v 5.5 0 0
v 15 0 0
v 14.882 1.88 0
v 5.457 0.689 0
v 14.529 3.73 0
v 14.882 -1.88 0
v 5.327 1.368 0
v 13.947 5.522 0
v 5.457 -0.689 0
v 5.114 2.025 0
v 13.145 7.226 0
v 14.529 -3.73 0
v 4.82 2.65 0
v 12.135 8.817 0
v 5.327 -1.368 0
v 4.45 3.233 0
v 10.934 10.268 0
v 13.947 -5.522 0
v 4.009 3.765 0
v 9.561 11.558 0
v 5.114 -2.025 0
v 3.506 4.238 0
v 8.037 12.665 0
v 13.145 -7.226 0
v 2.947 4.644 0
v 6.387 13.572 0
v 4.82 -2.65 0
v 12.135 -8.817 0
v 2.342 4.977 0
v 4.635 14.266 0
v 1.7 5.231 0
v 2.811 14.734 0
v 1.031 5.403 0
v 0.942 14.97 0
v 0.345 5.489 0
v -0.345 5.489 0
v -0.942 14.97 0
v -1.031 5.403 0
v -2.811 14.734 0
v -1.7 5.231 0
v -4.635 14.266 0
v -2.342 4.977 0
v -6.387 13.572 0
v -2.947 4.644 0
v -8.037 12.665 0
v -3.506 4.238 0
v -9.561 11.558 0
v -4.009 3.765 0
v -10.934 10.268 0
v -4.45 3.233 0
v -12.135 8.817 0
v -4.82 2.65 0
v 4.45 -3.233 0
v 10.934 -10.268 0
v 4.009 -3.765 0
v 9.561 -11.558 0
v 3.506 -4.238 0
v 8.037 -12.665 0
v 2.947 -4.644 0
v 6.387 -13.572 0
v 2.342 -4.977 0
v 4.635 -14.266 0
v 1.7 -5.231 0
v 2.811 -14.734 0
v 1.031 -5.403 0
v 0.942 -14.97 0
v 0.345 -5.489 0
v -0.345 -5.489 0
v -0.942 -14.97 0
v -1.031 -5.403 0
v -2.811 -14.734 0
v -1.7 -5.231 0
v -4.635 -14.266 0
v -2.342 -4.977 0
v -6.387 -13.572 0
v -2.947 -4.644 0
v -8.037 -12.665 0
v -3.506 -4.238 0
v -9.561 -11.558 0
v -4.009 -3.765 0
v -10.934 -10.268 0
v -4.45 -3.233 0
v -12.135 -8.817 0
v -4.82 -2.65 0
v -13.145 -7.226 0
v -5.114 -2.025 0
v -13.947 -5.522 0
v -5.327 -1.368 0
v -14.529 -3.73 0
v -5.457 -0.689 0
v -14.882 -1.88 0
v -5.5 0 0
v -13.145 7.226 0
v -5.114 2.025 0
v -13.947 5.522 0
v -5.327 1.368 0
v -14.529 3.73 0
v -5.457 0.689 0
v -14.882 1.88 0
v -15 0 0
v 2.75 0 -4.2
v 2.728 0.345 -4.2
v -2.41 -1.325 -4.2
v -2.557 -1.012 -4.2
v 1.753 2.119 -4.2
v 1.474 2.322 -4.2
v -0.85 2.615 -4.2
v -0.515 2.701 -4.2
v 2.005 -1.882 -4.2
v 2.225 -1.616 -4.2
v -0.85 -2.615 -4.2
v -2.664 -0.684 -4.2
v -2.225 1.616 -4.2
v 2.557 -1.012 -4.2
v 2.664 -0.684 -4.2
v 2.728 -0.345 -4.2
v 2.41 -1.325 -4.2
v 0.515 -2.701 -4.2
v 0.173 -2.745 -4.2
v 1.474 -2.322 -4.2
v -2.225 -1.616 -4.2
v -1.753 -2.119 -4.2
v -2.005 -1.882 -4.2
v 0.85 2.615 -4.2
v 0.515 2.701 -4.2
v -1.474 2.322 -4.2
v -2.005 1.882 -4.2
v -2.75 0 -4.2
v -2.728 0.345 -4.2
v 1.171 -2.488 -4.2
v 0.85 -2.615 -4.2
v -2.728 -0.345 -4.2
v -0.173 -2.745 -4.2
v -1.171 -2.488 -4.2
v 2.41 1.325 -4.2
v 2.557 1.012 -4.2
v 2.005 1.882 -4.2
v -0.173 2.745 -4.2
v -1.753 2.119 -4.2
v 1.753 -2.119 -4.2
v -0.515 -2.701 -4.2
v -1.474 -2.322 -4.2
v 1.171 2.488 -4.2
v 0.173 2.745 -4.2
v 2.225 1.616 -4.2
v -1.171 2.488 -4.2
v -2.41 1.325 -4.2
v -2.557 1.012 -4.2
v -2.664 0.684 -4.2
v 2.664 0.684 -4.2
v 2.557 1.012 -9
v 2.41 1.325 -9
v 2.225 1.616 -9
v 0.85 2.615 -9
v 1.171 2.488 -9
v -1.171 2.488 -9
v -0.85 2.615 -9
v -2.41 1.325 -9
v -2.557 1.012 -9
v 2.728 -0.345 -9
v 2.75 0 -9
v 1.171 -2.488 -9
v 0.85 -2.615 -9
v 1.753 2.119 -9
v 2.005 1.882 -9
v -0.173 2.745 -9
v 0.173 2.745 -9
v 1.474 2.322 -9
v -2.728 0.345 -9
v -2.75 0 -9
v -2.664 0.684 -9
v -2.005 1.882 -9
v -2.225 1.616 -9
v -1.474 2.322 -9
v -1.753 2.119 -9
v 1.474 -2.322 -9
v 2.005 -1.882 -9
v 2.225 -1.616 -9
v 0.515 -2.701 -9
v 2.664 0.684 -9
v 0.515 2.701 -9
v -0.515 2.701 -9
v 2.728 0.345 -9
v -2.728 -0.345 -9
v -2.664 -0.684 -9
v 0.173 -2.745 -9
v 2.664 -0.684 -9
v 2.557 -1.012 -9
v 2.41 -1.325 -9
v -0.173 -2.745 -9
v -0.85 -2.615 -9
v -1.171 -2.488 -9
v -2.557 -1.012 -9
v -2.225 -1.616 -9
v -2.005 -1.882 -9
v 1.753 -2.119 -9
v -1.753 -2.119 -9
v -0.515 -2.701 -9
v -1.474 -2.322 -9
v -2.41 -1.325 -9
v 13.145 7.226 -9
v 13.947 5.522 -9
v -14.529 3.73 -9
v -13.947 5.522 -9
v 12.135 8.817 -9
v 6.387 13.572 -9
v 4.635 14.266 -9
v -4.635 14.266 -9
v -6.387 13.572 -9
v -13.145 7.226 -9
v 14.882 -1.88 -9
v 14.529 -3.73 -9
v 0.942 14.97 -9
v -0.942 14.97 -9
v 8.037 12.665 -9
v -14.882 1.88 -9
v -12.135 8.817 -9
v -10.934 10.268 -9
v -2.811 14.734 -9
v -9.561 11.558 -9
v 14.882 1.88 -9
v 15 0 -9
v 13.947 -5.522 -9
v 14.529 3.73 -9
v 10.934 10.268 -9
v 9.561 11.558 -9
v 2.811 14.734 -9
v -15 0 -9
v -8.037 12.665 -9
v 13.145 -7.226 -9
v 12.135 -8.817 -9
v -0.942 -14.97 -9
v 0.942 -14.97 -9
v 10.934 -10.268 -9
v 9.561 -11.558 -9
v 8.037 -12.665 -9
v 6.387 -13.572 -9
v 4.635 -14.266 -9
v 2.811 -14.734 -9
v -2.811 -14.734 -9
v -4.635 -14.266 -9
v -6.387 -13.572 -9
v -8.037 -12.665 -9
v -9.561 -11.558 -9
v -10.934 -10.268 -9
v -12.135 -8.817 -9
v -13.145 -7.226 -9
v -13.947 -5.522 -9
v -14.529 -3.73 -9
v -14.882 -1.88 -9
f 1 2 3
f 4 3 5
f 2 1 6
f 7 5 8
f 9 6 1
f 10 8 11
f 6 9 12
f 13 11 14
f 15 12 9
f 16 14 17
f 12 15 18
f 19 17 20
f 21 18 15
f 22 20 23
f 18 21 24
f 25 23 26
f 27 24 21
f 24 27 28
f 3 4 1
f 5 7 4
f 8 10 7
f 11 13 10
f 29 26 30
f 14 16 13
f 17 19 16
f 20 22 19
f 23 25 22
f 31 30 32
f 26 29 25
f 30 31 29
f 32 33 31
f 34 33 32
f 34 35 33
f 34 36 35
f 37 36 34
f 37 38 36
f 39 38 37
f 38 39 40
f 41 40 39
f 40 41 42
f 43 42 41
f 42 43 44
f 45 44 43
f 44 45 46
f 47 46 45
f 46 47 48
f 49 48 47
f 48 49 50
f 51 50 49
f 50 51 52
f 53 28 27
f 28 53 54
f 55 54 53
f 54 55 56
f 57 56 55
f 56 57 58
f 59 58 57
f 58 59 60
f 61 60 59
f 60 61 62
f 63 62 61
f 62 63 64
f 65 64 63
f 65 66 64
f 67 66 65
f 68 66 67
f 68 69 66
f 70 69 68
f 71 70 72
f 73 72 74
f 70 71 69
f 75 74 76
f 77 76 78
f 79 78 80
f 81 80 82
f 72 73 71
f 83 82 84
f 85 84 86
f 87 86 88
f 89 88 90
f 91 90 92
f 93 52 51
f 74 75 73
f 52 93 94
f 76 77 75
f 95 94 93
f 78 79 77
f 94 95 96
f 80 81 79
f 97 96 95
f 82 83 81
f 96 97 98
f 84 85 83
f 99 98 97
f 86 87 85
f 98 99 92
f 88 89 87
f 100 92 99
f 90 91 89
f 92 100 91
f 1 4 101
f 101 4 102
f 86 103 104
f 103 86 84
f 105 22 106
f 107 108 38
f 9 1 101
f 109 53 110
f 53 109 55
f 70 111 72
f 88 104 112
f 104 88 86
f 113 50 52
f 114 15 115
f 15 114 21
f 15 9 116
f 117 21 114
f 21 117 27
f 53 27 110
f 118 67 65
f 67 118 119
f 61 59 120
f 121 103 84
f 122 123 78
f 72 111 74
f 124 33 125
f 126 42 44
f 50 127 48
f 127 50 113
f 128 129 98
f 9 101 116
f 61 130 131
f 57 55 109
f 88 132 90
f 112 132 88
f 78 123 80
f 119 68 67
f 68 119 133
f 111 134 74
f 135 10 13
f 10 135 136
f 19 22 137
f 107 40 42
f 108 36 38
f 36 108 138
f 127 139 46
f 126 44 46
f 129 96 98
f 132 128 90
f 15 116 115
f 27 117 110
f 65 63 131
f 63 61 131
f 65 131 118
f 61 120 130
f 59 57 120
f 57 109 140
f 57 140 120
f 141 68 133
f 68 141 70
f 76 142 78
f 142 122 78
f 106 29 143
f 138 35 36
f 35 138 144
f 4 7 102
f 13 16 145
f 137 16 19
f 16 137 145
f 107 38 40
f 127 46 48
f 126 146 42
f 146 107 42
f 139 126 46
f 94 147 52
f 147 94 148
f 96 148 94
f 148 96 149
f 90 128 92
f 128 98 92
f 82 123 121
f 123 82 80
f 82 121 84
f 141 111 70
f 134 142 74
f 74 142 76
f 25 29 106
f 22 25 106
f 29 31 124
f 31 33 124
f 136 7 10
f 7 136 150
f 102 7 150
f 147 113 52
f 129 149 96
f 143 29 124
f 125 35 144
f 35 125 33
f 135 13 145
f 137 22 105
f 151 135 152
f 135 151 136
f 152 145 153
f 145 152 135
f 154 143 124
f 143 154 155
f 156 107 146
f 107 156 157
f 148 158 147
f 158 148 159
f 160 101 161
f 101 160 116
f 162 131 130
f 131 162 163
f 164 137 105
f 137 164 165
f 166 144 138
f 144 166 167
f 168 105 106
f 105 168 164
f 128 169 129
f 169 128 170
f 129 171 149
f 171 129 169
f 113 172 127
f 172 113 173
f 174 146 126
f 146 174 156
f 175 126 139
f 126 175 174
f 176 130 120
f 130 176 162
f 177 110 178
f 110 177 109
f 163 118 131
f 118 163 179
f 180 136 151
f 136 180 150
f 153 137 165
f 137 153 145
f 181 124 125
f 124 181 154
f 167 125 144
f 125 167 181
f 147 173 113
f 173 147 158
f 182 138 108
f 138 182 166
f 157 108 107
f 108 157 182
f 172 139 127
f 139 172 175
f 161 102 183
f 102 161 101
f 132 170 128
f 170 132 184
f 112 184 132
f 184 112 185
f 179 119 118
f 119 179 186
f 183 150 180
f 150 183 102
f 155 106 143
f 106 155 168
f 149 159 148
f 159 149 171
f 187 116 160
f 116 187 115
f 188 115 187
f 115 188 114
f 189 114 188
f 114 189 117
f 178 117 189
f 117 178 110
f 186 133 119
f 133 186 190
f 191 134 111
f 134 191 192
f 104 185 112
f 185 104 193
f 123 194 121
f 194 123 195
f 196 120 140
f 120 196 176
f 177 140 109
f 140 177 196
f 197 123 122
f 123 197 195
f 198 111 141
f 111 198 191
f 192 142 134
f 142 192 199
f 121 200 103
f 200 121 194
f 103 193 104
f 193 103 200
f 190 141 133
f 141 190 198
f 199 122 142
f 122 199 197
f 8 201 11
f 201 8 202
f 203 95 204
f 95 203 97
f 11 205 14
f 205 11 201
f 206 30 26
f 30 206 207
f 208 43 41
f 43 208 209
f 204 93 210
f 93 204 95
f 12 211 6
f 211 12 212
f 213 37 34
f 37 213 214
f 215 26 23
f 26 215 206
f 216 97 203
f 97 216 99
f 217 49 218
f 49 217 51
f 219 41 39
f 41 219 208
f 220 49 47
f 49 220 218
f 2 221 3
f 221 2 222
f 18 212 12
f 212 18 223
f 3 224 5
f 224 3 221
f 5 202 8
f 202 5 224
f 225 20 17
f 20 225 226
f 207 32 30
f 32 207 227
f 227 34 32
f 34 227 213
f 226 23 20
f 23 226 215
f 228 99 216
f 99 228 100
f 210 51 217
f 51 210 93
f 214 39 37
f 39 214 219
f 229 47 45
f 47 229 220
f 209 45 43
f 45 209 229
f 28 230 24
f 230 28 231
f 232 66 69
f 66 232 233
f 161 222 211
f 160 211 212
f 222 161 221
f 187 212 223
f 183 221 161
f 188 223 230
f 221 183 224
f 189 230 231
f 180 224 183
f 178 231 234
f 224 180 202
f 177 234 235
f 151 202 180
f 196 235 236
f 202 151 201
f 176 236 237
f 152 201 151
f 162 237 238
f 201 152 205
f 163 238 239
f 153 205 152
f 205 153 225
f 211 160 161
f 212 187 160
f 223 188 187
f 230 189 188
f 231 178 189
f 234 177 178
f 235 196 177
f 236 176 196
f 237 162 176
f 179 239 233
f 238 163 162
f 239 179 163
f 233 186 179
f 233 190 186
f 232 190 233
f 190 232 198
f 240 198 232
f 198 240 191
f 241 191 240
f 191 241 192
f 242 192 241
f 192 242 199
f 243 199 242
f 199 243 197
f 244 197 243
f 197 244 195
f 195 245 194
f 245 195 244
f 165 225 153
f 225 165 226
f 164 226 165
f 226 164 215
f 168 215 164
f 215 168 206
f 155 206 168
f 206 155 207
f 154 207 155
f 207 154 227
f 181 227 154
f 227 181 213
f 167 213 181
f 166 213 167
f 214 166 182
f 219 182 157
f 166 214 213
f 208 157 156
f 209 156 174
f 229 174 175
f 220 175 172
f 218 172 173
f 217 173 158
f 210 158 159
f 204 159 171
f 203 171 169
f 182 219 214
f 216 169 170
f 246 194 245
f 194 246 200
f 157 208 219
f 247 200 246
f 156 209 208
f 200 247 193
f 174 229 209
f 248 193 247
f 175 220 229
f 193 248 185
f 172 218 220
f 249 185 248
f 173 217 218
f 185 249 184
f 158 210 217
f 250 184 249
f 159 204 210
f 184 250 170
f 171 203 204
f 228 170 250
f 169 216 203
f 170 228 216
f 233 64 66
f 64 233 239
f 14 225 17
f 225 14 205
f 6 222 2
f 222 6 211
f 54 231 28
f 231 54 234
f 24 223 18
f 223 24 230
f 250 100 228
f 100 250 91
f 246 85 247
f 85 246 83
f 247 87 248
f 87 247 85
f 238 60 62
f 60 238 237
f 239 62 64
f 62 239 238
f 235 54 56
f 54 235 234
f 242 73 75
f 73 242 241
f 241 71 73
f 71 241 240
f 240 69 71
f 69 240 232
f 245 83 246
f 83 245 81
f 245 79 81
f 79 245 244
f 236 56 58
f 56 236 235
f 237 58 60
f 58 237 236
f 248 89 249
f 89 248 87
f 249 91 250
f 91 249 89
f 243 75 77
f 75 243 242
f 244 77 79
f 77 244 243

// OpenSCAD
$fn = 50;


difference() {
	union() {
		translate(v = [0, 0, -9.0000000000]) {
			cylinder(h = 9, r = 15.0000000000);
		}
	}
	union() {
		translate(v = [0, 0, 0]) {
			rotate(a = [0, 0, 0]) {
				difference() {
					union() {
						translate(v = [0, 0, -12.0000000000]) {
							cylinder(h = 12, r = 2.2500000000);
						}
						translate(v = [0, 0, -4.2000000000]) {
							cylinder(h = 4.2000000000, r1 = 2.7500000000, r2 = 5.5000000000);
						}
						translate(v = [0, 0, -12.0000000000]) {
							cylinder(h = 12, r = 2.7500000000);
						}
						translate(v = [0, 0, -12.0000000000]) {
							cylinder(h = 12, r = 2.2500000000);
						}
					}
					union();
				}
			}
		}
	}
}
